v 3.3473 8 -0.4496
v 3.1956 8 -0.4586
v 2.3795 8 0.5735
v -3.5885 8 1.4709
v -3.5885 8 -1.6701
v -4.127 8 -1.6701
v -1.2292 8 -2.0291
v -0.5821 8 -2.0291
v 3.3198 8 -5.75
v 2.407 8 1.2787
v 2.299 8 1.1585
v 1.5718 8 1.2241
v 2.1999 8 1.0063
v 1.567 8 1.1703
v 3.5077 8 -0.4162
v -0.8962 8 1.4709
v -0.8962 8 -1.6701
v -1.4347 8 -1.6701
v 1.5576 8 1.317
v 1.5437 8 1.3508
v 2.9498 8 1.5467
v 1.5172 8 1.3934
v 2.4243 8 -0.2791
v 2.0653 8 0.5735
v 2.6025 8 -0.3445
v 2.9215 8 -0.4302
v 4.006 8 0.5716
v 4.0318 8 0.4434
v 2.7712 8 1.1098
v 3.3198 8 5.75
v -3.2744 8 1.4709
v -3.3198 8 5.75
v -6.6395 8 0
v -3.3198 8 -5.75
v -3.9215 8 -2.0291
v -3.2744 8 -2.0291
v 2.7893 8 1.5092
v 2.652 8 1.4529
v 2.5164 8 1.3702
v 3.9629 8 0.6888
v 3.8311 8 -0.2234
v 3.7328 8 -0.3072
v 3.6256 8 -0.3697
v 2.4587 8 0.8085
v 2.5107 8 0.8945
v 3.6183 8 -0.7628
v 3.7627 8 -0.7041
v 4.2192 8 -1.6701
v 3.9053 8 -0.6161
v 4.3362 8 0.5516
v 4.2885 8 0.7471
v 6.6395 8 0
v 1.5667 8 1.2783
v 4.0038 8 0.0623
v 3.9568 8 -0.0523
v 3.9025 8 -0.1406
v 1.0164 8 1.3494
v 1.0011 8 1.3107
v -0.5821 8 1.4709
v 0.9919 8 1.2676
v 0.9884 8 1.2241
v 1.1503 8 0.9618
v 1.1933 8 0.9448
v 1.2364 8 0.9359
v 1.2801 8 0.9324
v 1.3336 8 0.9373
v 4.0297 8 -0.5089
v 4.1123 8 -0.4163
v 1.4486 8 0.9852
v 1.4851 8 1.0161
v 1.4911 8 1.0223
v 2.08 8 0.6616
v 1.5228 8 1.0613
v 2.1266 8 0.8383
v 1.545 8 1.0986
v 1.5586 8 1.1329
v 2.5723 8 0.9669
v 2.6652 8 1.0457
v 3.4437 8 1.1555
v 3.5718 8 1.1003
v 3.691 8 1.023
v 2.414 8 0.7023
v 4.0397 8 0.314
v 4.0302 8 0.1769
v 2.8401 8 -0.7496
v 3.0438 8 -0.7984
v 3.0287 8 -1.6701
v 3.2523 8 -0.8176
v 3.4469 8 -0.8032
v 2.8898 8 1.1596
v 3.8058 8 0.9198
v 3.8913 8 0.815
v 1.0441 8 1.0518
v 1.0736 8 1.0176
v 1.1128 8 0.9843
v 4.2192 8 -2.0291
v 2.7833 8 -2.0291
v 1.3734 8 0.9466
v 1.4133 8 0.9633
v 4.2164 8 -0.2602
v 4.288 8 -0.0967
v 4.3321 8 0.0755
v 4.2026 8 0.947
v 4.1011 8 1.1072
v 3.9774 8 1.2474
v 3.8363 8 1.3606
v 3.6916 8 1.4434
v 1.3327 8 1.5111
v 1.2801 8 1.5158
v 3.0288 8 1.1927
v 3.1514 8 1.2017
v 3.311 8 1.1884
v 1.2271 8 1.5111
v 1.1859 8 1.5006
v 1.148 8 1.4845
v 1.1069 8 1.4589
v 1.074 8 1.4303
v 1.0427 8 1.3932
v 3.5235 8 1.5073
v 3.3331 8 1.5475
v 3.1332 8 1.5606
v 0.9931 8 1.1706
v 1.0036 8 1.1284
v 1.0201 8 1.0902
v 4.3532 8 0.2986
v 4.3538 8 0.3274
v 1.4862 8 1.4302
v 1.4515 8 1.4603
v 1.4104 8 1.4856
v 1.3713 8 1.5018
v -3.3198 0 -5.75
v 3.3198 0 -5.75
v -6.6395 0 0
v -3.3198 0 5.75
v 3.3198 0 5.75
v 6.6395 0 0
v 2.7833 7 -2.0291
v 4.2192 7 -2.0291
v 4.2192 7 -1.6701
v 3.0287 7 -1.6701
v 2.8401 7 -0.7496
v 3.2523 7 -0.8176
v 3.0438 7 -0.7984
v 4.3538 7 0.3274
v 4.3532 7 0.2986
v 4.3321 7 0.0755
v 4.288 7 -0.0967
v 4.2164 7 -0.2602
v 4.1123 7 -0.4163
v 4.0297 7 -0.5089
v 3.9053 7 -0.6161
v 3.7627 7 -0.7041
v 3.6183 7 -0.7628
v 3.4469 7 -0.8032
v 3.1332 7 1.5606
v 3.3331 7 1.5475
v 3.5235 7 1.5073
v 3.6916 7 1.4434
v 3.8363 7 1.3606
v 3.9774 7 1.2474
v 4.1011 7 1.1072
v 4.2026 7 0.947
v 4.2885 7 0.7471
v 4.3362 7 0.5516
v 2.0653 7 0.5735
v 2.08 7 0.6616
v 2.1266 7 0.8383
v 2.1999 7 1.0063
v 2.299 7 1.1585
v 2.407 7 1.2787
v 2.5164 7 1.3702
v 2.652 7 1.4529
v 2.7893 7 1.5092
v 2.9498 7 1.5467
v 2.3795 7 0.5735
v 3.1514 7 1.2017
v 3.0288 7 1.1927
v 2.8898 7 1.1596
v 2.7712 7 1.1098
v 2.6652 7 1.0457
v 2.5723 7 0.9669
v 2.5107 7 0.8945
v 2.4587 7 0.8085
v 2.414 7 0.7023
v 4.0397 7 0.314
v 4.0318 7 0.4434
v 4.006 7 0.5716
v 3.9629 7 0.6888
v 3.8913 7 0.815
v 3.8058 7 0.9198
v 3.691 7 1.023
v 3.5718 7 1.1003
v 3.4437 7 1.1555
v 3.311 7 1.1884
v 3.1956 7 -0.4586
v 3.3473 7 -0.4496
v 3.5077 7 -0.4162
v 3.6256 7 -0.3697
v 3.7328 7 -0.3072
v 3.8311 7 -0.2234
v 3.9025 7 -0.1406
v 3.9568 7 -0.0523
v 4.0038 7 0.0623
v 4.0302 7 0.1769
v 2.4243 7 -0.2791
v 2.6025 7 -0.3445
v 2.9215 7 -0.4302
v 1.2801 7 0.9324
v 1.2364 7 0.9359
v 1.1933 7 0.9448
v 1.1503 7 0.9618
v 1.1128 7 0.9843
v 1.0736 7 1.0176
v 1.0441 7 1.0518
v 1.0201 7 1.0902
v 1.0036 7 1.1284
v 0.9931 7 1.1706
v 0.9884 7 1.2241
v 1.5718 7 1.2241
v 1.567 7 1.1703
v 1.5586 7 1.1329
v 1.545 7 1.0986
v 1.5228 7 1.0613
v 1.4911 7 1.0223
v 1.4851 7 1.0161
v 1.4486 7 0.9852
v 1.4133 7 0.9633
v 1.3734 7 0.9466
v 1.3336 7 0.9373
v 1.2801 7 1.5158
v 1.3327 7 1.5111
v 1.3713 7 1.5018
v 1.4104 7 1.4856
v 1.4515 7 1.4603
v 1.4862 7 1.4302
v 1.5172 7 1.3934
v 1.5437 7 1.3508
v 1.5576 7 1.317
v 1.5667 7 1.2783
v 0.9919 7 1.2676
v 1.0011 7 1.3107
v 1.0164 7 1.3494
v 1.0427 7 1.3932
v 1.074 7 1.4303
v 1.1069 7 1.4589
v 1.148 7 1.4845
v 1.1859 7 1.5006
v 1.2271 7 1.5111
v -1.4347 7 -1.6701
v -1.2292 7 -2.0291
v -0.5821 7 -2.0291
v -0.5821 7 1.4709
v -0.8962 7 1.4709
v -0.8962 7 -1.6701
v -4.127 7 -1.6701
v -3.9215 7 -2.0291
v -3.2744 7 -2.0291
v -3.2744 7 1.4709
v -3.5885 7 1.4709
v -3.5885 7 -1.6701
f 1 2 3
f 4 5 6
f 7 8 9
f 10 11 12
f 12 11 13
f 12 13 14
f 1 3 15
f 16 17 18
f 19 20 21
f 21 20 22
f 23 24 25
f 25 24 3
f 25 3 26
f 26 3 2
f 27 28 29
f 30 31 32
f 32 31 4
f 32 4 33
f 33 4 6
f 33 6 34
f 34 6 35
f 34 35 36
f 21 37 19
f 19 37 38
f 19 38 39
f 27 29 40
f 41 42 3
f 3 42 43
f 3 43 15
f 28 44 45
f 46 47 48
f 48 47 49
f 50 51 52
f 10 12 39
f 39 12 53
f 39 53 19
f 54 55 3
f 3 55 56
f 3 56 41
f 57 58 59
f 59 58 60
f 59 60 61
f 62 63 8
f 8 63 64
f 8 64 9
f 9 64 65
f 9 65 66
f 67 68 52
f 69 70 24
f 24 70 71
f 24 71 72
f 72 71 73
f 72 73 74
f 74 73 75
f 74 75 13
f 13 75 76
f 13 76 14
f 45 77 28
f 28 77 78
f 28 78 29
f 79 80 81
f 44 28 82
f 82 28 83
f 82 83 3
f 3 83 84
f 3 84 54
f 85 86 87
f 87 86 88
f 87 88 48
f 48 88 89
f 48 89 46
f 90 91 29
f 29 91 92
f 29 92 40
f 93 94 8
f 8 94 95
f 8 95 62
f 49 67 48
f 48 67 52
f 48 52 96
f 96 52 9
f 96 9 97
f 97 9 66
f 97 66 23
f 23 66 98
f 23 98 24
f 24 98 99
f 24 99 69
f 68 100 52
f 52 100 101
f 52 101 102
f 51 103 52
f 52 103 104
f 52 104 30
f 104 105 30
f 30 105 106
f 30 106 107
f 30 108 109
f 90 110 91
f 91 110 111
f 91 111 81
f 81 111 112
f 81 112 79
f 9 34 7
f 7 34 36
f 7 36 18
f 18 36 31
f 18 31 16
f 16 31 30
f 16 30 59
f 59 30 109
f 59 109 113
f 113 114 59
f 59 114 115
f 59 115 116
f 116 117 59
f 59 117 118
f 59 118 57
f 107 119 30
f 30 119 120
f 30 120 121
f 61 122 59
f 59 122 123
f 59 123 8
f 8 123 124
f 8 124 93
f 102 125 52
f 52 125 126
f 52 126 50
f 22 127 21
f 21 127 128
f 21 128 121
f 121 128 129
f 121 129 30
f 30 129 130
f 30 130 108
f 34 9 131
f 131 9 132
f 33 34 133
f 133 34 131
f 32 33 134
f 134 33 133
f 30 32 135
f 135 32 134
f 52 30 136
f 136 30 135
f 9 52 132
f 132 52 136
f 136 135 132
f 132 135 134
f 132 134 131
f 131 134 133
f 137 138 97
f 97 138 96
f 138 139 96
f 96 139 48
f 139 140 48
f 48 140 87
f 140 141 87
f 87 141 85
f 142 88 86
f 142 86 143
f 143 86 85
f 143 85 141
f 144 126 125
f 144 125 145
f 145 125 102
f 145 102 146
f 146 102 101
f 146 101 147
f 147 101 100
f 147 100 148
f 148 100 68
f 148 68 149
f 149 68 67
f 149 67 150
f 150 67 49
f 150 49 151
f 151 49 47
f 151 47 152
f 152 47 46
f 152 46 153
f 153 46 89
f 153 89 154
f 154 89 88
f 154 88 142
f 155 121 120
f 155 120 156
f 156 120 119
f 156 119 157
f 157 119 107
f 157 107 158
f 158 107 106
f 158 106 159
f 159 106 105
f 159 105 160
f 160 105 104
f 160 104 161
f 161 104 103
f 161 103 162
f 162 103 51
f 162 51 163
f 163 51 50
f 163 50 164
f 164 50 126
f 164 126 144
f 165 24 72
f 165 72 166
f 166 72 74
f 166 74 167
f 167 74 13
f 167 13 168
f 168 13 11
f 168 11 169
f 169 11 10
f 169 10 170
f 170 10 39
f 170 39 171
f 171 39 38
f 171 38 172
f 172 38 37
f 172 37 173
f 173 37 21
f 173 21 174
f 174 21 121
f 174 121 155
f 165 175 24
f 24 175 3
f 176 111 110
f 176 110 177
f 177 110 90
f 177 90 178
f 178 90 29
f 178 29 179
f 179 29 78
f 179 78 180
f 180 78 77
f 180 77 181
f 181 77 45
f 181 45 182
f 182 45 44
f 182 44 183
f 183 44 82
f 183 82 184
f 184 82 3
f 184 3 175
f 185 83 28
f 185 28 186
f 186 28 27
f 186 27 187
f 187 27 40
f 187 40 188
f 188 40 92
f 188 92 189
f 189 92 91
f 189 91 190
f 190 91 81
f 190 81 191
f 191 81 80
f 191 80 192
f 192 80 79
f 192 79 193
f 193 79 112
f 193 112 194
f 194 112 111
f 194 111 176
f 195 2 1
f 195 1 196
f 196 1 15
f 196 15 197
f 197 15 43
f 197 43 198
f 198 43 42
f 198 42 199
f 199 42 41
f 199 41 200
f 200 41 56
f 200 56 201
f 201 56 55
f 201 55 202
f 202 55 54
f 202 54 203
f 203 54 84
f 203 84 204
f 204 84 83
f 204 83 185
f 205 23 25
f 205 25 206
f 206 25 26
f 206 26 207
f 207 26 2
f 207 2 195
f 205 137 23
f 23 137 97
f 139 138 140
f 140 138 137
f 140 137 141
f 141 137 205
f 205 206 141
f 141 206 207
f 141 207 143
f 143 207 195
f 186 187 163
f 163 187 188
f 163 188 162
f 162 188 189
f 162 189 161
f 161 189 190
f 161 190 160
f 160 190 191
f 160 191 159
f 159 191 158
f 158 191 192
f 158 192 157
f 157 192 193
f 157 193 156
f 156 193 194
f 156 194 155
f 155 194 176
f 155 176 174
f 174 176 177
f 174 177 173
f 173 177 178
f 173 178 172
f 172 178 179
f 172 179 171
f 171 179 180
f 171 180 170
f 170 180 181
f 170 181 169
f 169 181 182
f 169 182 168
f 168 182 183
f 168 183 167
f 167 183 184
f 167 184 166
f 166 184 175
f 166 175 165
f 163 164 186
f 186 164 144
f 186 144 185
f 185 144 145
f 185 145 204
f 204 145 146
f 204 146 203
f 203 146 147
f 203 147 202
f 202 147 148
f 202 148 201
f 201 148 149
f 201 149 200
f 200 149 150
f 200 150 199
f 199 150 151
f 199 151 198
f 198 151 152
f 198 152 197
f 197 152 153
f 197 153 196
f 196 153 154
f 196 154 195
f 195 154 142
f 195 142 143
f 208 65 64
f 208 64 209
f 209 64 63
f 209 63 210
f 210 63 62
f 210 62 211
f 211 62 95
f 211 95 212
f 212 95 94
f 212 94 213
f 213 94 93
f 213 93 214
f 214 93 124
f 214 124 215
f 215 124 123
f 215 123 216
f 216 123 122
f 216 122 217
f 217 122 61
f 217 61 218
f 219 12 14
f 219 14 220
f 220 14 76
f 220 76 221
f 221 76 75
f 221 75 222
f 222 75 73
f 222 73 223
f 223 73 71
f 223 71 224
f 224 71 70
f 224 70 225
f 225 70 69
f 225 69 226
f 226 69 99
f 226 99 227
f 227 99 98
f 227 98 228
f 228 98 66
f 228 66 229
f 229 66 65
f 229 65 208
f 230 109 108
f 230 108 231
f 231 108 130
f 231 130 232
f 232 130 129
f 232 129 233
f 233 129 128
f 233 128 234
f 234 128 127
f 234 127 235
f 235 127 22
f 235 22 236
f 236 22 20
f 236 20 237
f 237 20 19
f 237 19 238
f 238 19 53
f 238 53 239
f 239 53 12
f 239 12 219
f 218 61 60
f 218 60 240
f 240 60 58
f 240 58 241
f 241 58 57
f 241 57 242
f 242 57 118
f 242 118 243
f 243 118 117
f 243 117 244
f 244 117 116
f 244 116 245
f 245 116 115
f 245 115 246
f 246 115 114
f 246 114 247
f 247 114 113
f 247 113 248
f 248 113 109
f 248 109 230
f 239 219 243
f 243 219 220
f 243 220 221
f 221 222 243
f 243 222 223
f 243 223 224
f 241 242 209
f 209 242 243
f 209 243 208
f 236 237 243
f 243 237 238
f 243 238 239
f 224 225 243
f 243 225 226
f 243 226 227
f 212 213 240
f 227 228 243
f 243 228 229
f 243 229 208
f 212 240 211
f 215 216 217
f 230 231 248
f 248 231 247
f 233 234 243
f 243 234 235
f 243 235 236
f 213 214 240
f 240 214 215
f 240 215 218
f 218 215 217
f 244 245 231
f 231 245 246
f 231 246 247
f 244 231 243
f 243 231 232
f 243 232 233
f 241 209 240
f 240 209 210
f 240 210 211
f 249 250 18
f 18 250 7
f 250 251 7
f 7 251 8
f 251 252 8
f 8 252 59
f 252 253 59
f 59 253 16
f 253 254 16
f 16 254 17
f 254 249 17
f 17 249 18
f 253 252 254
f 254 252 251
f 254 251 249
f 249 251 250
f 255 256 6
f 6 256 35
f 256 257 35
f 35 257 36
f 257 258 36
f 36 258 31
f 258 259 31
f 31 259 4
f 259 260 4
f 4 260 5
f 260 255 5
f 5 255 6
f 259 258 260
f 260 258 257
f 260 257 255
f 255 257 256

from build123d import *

# Parameters (mm, degrees)
BOSS_EXTRUDE1_DEPTH = 8
CUT_EXTRUDE1_DEPTH  = 1


with BuildPart() as part:
    # Sketch2 → Boss-Extrude1 (new body)
    with BuildSketch(Plane(origin=(0, 0, 0), x_dir=(1, 0, 0), z_dir=(0, 1, 0))):
        Polygon((3.319764048, 5.75), (-3.319764048, 5.75), (-6.639528096, 0), (-3.319764048, -5.75), (3.319764048, -5.75), (6.639528096, 0), align=None)
    extrude(amount=BOSS_EXTRUDE1_DEPTH)

    # Sketch7 → Cut-Extrude1 (cut)
    with BuildSketch(Plane(origin=(0, 8, 0), x_dir=(1, 0, 0), z_dir=(0, 1, 0))):
        Polygon((-3.921529, 2.029099912), (-3.274393584, 2.029099912), (-3.274393584, -1.470900088), (-3.588496148, -1.470900088), (-3.588496148, 1.670125553), (-4.126957686, 1.670125553), align=None)
        Polygon((-1.229221308, 2.029099912), (-0.582085891, 2.029099912), (-0.582085891, -1.470900088), (-0.896188456, -1.470900088), (-0.896188456, 1.670125553), (-1.434649994, 1.670125553), align=None)
        with BuildLine():
            add(Edge.make_bspline(
                [(1.280093596, -0.932438549), (1.299583808, -0.933596716), (1.33779209, -0.935867166), (1.393031219, -0.95144384), (1.443025878, -0.9791025), (1.487558123, -1.015965279), (1.5242646, -1.060660942), (1.552908952, -1.110256851), (1.568349937, -1.165958443), (1.570603849, -1.204388118), (1.571760262, -1.224105216)],
                knots=[0, 0, 0, 0, 5.8463e-05, 0.000114609, 0.000170453, 0.000228714, 0.000286975, 0.000343156, 0.000399303, 0.000458464, 0.000458464, 0.000458464, 0.000458464], degree=3))
            add(Edge.make_bspline(
                [(1.571760262, -1.224105216), (1.570564662, -1.243348546), (1.568206955, -1.281296109), (1.552944346, -1.336577572), (1.524046296, -1.386204476), (1.487811303, -1.431506615), (1.44301487, -1.468447485), (1.392913023, -1.49587083), (1.337921765, -1.51256281), (1.299605442, -1.514689107), (1.280093596, -1.515771883)],
                knots=[0, 0, 0, 0, 5.7765e-05, 0.000113912, 0.000170093, 0.000228896, 0.000287156, 0.000343, 0.000399343, 0.000457806, 0.000457806, 0.000457806, 0.000457806], degree=3))
            add(Edge.make_bspline(
                [(1.280093596, -1.515771883), (1.26056769, -1.514728285), (1.222448007, -1.51269091), (1.167662013, -1.495528104), (1.117255045, -1.468704644), (1.072467333, -1.431437734), (1.035928861, -1.386437591), (1.008303478, -1.336235794), (0.99171333, -1.281454357), (0.989531457, -1.243379714), (0.988426929, -1.224105216)],
                knots=[0, 0, 0, 0, 5.8463e-05, 0.000114135, 0.000170596, 0.000228856, 0.000287659, 0.000343502, 0.000399846, 0.000457611, 0.000457611, 0.000457611, 0.000457611], degree=3))
            add(Edge.make_bspline(
                [(0.988426929, -1.224105216), (0.989489028, -1.204355836), (0.991562647, -1.165797596), (1.008338307, -1.110598489), (1.035714519, -1.060430049), (1.072719914, -1.016033469), (1.11724421, -0.978846167), (1.167540415, -0.951781374), (1.222579955, -0.935740961), (1.260589894, -0.933558445), (1.280093596, -0.932438549)],
                knots=[0, 0, 0, 0, 5.9161e-05, 0.000115504, 0.000171348, 0.000229609, 0.000287869, 0.00034433, 0.000399803, 0.000458266, 0.000458266, 0.000458266, 0.000458266], degree=3))
        make_face()
        with BuildLine():
            Line((4.21919616, 2.029099912), (4.21919616, 1.670125553))
            Line((4.21919616, 1.670125553), (3.028691352, 1.670125553))
            Line((3.028691352, 1.670125553), (2.840089589, 0.749552637))
            add(Edge.make_bspline(
                [(2.840089589, 0.749552637), (2.877145464, 0.759782909), (2.94893536, 0.779602442), (3.054895221, 0.801608213), (3.155487424, 0.814873657), (3.220762794, 0.816684967), (3.252349205, 0.817561451)],
                knots=[0, 0, 0, 0, 0.000115302, 0.000223379, 0.000324431, 0.000419176, 0.000419176, 0.000419176, 0.000419176], degree=3))
            add(Edge.make_bspline(
                [(3.252349205, 0.817561451), (3.291432944, 0.816715515), (3.368281342, 0.815052194), (3.480720289, 0.799080345), (3.588053182, 0.77394043), (3.690055552, 0.738819908), (3.786916103, 0.693910175), (3.877743664, 0.637810235), (3.963901577, 0.572276904), (4.043844171, 0.496931892), (4.116368479, 0.414010275), (4.180134469, 0.324852404), (4.234297059, 0.230324742), (4.277857814, 0.129524133), (4.312642149, 0.02356498), (4.335794143, -0.088667603), (4.351210852, -0.206115723), (4.352933239, -0.286420293), (4.353811544, -0.32737044)],
                knots=[0, 0, 0, 0, 0.00011719, 0.000230425, 0.000339944, 0.000447481, 0.000553499, 0.000659556, 0.000767111, 0.000877722, 0.000988528, 0.001097091, 0.001206056, 0.001314692, 0.001425996, 0.001539995, 0.001658004, 0.001780798, 0.001780798, 0.001780798, 0.001780798], degree=3))
            add(Edge.make_bspline(
                [(4.353811544, -0.32737044), (4.353146469, -0.355892661), (4.351825307, -0.412551648), (4.345106719, -0.496695849), (4.332171003, -0.579058682), (4.314803279, -0.659651074), (4.292260861, -0.738320446), (4.264971807, -0.815291974), (4.231575779, -0.890086581), (4.194944404, -0.963411976), (4.153697926, -1.033610483), (4.107919419, -1.099259469), (4.059553928, -1.161343751), (4.007512542, -1.219197484), (3.951311547, -1.272440502), (3.89163158, -1.321388783), (3.828948861, -1.366870114), (3.762293619, -1.407038309), (3.693151136, -1.444001265), (3.620522919, -1.474324802), (3.546062218, -1.50143533), (3.468697343, -1.523044858), (3.38860353, -1.539977412), (3.305648754, -1.551478013), (3.220268084, -1.55985445), (3.162393072, -1.560378807), (3.1331585, -1.560643677)],
                knots=[0, 0, 0, 0, 8.5583e-05, 0.000170009, 0.000253005, 0.000335518, 0.000417186, 0.000498352, 0.000580291, 0.000662755, 0.000744161, 0.000824288, 0.000902692, 0.000980133, 0.001057498, 0.001134702, 0.00121156, 0.001289599, 0.001368002, 0.001446531, 0.001525481, 0.001605609, 0.001687289, 0.001770875, 0.001856759, 0.001944425, 0.001944425, 0.001944425, 0.001944425], degree=3))
            add(Edge.make_bspline(
                [(3.1331585, -1.560643677), (3.098284319, -1.559952839), (3.029673488, -1.558593697), (2.929152921, -1.544375212), (2.832438315, -1.524011296), (2.740308214, -1.493375026), (2.651936951, -1.454987731), (2.568514233, -1.40647156), (2.487908457, -1.351492456), (2.41339642, -1.286612103), (2.344240307, -1.215696421), (2.282333798, -1.13873878), (2.227200221, -1.057009338), (2.179722474, -0.970111184), (2.139224453, -0.878272653), (2.107409464, -0.781149652), (2.081731109, -0.679249648), (2.070867689, -0.609096137), (2.065350006, -0.57346419)],
                knots=[0, 0, 0, 0, 0.000104552, 0.000205693, 0.000304023, 0.000400691, 0.00049644, 0.000592535, 0.000689779, 0.000788716, 0.000888377, 0.000986596, 0.001084603, 0.001183757, 0.001283279, 0.001385267, 0.001490017, 0.001598135, 0.001598135, 0.001598135, 0.001598135], degree=3))
            Line((2.065350006, -0.57346419), (2.37945257, -0.57346419))
            add(Edge.make_bspline(
                [(2.37945257, -0.57346419), (2.387181128, -0.606840643), (2.402035844, -0.670992038), (2.434641593, -0.761123379), (2.474507468, -0.841442603), (2.521911817, -0.913012186), (2.578461847, -0.975421183), (2.642991276, -1.031038245), (2.715338999, -1.081213374), (2.795732229, -1.123036142), (2.880545308, -1.158704895), (2.969312518, -1.18245659), (3.059616865, -1.199157483), (3.120695235, -1.200829244), (3.151387666, -1.201669318)],
                knots=[0, 0, 0, 0, 0.000102709, 0.000197412, 0.000286774, 0.000371169, 0.000454082, 0.000538572, 0.000626283, 0.000717552, 0.000809994, 0.00090168, 0.00099274, 0.001084718, 0.001084718, 0.001084718, 0.001084718], degree=3))
            add(Edge.make_bspline(
                [(3.151387666, -1.201669318), (3.181346111, -1.20084854), (3.240334533, -1.199232422), (3.32714592, -1.18679341), (3.410958794, -1.167635839), (3.490946151, -1.138965984), (3.56850769, -1.104121265), (3.641681461, -1.059406189), (3.712584338, -1.007946171), (3.779012471, -0.948989541), (3.83985192, -0.884019846), (3.893608042, -0.814542453), (3.938384955, -0.740425606), (3.976119064, -0.662952454), (4.004772363, -0.581273896), (4.025213344, -0.495772721), (4.037216403, -0.406237741), (4.038867583, -0.345168431), (4.03970898, -0.314049126)],
                knots=[0, 0, 0, 0, 8.9842e-05, 0.0001769, 0.000262612, 0.000347317, 0.000431396, 0.000517249, 0.000604055, 0.000693954, 0.000783242, 0.000870748, 0.000956963, 0.001042571, 0.001128832, 0.00121607, 0.001305907, 0.001399251, 0.001399251, 0.001399251, 0.001399251], degree=3))
            add(Edge.make_bspline(
                [(4.03970898, -0.314049126), (4.039050501, -0.285973374), (4.037761621, -0.231019085), (4.027231051, -0.150619879), (4.008914078, -0.074546837), (3.983490198, -0.002432603), (3.951210691, 0.06579084), (3.911764378, 0.1301939), (3.86441098, 0.189927733), (3.810319092, 0.245020287), (3.751061051, 0.295865162), (3.685617308, 0.339209248), (3.615357382, 0.375673166), (3.541127782, 0.407141164), (3.461162883, 0.429741909), (3.377046251, 0.446709795), (3.287869543, 0.456525158), (3.226898855, 0.457887046), (3.195558339, 0.458587092)],
                knots=[0, 0, 0, 0, 8.4208e-05, 0.000164824, 0.000242709, 0.000318547, 0.000393815, 0.000468731, 0.000544614, 0.00062196, 0.000700062, 0.000778428, 0.000856831, 0.000937299, 0.001019835, 0.001105635, 0.00119452, 0.001288536, 0.001288536, 0.001288536, 0.001288536], degree=3))
            add(Edge.make_bspline(
                [(3.195558339, 0.458587092), (3.168429411, 0.458006501), (3.112415055, 0.456807727), (3.026492228, 0.44798123), (2.936200506, 0.433741936), (2.84188601, 0.414155689), (2.743265502, 0.388524612), (2.640547101, 0.357810111), (2.533514835, 0.321088112), (2.46139711, 0.293355899), (2.424324365, 0.279099912)],
                knots=[0, 0, 0, 0, 8.1378e-05, 0.000168026, 0.000258858, 0.000355524, 0.000456875, 0.000564457, 0.000677092, 0.000796243, 0.000796243, 0.000796243, 0.000796243], degree=3))
            Line((2.424324365, 0.279099912), (2.783298724, 2.029099912))
            Line((2.783298724, 2.029099912), (4.21919616, 2.029099912))
        make_face()
    extrude(amount=-CUT_EXTRUDE1_DEPTH, mode=Mode.SUBTRACT)


solid = part.part
